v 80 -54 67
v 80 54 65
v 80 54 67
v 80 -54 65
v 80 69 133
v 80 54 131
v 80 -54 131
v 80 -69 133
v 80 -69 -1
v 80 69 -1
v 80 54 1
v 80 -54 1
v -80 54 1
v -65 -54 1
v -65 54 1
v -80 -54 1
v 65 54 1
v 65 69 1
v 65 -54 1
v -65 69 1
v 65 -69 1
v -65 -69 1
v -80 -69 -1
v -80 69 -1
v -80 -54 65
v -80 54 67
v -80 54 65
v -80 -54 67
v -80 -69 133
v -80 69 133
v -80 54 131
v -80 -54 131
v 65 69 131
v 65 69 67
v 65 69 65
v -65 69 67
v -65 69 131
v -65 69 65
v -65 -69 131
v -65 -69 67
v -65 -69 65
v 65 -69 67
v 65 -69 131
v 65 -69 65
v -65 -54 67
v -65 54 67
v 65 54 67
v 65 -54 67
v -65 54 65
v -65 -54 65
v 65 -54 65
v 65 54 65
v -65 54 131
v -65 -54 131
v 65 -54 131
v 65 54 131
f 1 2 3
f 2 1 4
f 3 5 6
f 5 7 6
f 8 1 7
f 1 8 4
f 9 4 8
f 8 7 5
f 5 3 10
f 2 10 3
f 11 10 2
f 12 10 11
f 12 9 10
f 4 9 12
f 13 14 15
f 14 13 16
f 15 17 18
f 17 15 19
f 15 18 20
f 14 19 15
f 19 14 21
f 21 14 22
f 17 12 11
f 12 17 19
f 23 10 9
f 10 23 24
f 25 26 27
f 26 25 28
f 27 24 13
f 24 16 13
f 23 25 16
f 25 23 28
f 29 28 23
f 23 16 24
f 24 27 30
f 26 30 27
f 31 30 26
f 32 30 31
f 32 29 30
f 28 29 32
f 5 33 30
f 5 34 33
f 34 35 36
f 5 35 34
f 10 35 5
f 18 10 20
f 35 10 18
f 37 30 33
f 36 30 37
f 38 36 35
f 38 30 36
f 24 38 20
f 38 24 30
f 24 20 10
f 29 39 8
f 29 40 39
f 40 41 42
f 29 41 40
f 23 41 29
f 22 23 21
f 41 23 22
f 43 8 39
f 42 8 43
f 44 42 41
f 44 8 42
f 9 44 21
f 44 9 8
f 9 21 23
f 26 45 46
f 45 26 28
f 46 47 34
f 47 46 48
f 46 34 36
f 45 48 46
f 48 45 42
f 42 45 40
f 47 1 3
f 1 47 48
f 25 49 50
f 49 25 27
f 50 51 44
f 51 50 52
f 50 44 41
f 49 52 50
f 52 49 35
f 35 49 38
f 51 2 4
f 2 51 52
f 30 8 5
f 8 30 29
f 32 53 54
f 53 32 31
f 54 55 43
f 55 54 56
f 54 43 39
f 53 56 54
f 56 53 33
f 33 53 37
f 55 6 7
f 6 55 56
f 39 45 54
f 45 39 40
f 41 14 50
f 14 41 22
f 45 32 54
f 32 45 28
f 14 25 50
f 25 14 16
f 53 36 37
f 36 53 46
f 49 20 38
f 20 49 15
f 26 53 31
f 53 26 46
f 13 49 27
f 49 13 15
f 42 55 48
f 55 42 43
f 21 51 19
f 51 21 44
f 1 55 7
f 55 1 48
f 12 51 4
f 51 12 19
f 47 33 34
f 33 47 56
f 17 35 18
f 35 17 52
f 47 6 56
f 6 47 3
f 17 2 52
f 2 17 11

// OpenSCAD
//アンプの大きさに合わせてモデリング

module cube_basic(tx, ty, tz, cx, cy, cz){
	translate([tx, ty, tz]){
		cube([cx, cy, cz], center=true);
	}
}

//棚板
for(z=[0:66:66*2]){
	cube_basic(0, 0, z, 160, 138, 2); 
}

//脚部
for(tx=[-145/2:145:145/2], ty=[-123/2:123:123/2], tz=[33:33:99]){
	color([0, 0.5, 0])
	cube_basic(tx, ty, tz, 15, 15, 66-2); 
}
